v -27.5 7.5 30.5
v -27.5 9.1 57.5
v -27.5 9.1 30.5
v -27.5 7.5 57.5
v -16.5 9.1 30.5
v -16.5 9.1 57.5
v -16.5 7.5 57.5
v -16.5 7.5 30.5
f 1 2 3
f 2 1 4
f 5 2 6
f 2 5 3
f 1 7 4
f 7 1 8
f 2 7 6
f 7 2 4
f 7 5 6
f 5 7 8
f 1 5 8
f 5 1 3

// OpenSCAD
// file: D:/Projects/assembly-workshop/outputs/Screen_Pi_Hue_SCR5-H8_2026-10-31/checks/geometry.scad
// SCR5-G; mm; FRONT view: X right, Z up, Y into rack. Glass/plate front Y=0.
// Measured values: work/screen-5in/Dimensions.md. Physical fit/strength UNKNOWN.
part="plate";
DROP=0.45; // coupon winner can be substituted here; all three pins use this DROP
LIP=0.8; LIP_ON=true;
LIP_EDGES=[true,true,false,false]; // left,right,bottom,top; Brian: side lips only, cosmetic
FRAME_STEP=1.5; // measured glass-edge inset to metal LCD frame, left/right only
SHIM=0; // moves rear frame seat and plate-boss mating face back
$fn=48;
GCX=33; GCZ=41.5; PW=252; PH=88.8; PT=4;
GW=120.7; GH=77.2; CLEAR=0.2; WW=GW+2*CLEAR; WH=GH+2*CLEAR;
SEAT=13.3+SHIM; FT=3;
SO=[56.45,34]; BTN_X=[45.5,35.5,25.5];
PCB_TOP=38; GAP=0.10; LEAF_T=0.8;
HOLE=[3.4,40.3,44.7];
BX=[GCX-68,GCX+68]; BZ=[10,72];
// DSI connector X extent is unmeasured: conservative assumed 8 mm inward from PCB edge.
DSI=[GCX-60.5,9.1,GCZ-38+30,8,5.25,21];
module xz(y,d){translate([0,y+d,0])rotate([90,0,0])linear_extrude(d)children();}
// rr/rack_slots copied from SCR5-F; same exact slot centres, outline shifted -0.05 Z to centre 44.4.
module rr(w,h,r){hull()for(x=[-w/2+r,w/2-r],z=[-h/2+r,h/2-r])translate([x,z])circle(r=r);}
module rack_slots(){for(x=[-118.2625,118.2625],z=[6.323,38.127,50.773,82.577])translate([x,z])hull()for(dx=[-1.5,1.5])translate([dx,0])circle(d=7);}
module cyl_y(x,y,z,d,h){translate([x,y,z])rotate([-90,0,0])cylinder(d=d,h=h);}
module window_cut(){
  xz(-0.02,4.04)translate([GCX,GCZ])square([WW,WH],center=true);
  // 0.3 x 45-degree chamfer, square corners, front only.
  translate([GCX,0.3,GCZ])rotate([90,0,0])
    linear_extrude(height=0.3,scale=[(WW+0.6)/WW,(WH+0.6)/WH])square([WW,WH],center=true);
}
module lips(){
  // Cosmetic side ledges only; rear frame/standoffs set depth and retain the screen.
  if(LIP_ON)for(i=[0:3])if(LIP_EDGES[i]){
    if(i<2)translate([GCX+(i==0?-WW/2:WW/2-LIP),2.5,GCZ-GH/2+4])cube([LIP,0.8,GH-8]);
    else translate([GCX-GW/2+4,2.5,GCZ+(i==2?-WH/2:WH/2-LIP)])cube([GW-8,0.8,LIP]);
  }
}
// Leaf/nub/bump geometry copied from SCR5-WP-A, translated to this glass centre.
module leaves(){for(x=BTN_X)translate([GCX+x-1.5,0,GCZ]){
  translate([0,0,PCB_TOP+GAP+0.9+0.1])cube([3,11.8,LEAF_T]);
  translate([0,10.2,PCB_TOP+GAP])cube([3,1.4,1.0+LEAF_T/2]);
  translate([0,10.4,PCB_TOP+GAP+1.0+LEAF_T])cube([3,1.0,0.9]);
}}
module plate(){difference(){union(){
  difference(){xz(0,PT)translate([0,PH/2])rr(PW,PH,2.5);window_cut();}
  for(x=BX,z=BZ)cyl_y(x,3.9,z,8,SEAT-3.9);
  leaves(); lips();
 }
 xz(-0.02,4.04)rack_slots();
 for(x=BTN_X)translate([GCX+x-HOLE[0]/2,-0.02,GCZ+HOLE[1]])cube([HOLE[0],SEAT+FT+0.04,HOLE[2]-HOLE[1]]);
 // Printed-in screw pilots (no heat-set OD assumption): nominal M2.5, fit UNKNOWN.
 for(x=BX,z=BZ)cyl_y(x,SEAT-6,z,2.1,6.02);
 // Rear engraving, 0.5 deep, left field.
 xz(3.5,0.52)translate([-75,40])mirror([1,0])text("SCR5-G",size=6,halign="center",font="Liberation Sans:style=Bold");
}}
module frame_blank(){
  // C-shaped perimeter; no material across the board centre / touch FPC.
  xz(SEAT,FT)translate([GCX,GCZ])difference(){square([132,76],center=true);square([116,60],center=true);}
  for(sx=[-1,1],sz=[-1,1])cyl_y(GCX+sx*SO[0],SEAT,GCZ+sz*SO[1],9,FT);
  for(x=BX,z=BZ)hull(){cyl_y(x,SEAT,z,8,FT);cyl_y(GCX+(x<GCX?-62:62),SEAT,z,8,FT);}
}
module dsi_keepout(){translate([DSI[0]-3,DSI[1]-3,DSI[2]-3])cube([DSI[3]+6,DSI[4]+6,DSI[5]+6]);}
module ribbon_route(){
  // Open left/up corridor 18 mm wide; extends past top of plate.
  translate([GCX-84,6.1,GCZ-11])cube([18,24,65]);
  translate([GCX-84,6.1,GCZ-11])cube([32,24,27]);
}
module frame(){difference(){frame_blank();dsi_keepout();ribbon_route();
 for(sx=[-1,1],sz=[-1,1])cyl_y(GCX+sx*SO[0],SEAT-0.02,GCZ+sz*SO[1],2.8,FT+0.04);
 for(x=BX,z=BZ)cyl_y(x,SEAT-0.02,z,2.8,FT+0.04);
}}
// Pin polygon/cap/notch/dot design copied unchanged from SCR5-WP-A.
module pin(d,dots){s=2*d+0.5;difference(){union(){
 translate([-1.5,0,0])rotate([90,0,90])linear_extrude(3)polygon([
 [-s-0.02,40.5],[10.2,40.5],[10.2,41.0],[11.5,41.0],[11.5+2*d,41.0-d],[15,41.0-d],[15,44.5],[-s-0.02,44.5]]);
 translate([-2.5,-s-1.5,39.6])cube([5,1.5,5.8]);
 }for(i=[0:dots-1])translate([(i-(dots-1)/2)*1.4,-s-1.5-0.01,43.5])rotate([-90,0,0])cylinder(d=0.9,h=0.4);}}
module placed_pin(i){translate([GCX+BTN_X[i],0,GCZ])pin(DROP,i+1);}
// Measured layers: cover glass 0.9 + second glass 1.6, metal frame 3.0,
// open gap 2.0, PCB 1.6. Metal frame inset ~1.5 at LEFT/RIGHT only.
// PCB centred under glass and full metal-frame top/bottom extent remain UNKNOWN.
module glass(){translate([GCX-GW/2,0,GCZ-GH/2])cube([GW,2.5,GH]);}
module lcd(){
  translate([GCX-GW/2+FRAME_STEP,2.5,GCZ-GH/2])cube([GW-2*FRAME_STEP,3.0,GH]);
}
module pcb(){translate([GCX-60.5,7.5,GCZ-38])cube([121,1.6,76]);}
module standoffs(){for(sx=[-1,1],sz=[-1,1])difference(){cyl_y(GCX+sx*SO[0],9.1,GCZ+sz*SO[1],5.5,4.2);cyl_y(GCX+sx*SO[0],9.08,GCZ+sz*SO[1],2.5,4.24);}}
module buttons(){for(x=BTN_X){
 translate([GCX+x-3.5,9.1,GCZ+38-3.4])cube([7,3.6,2.4]);
 translate([GCX+x-1.5,9.1,GCZ+37])cube([3,3.6,1]);
}}
module dsi(){translate([DSI[0],DSI[1],DSI[2]])cube([DSI[3],DSI[4],DSI[5]]);}
module touch(){translate([GCX-10,9.1,GCZ-5])cube([20,2,10]);} // lateral extent unmeasured
module dummy(){glass();lcd();pcb();standoffs();buttons();dsi();touch();}
module assembly(){color("gray")plate();color("orange")frame();for(i=[0:2])color("cyan")placed_pin(i);color([0.2,0.3,0.4,0.4])dummy();}
// main file
include <D:/Projects/assembly-workshop/outputs/Screen_Pi_Hue_SCR5-H8_2026-10-31/checks/geometry.scad>
intersection(){pcb();dsi_keepout();}
